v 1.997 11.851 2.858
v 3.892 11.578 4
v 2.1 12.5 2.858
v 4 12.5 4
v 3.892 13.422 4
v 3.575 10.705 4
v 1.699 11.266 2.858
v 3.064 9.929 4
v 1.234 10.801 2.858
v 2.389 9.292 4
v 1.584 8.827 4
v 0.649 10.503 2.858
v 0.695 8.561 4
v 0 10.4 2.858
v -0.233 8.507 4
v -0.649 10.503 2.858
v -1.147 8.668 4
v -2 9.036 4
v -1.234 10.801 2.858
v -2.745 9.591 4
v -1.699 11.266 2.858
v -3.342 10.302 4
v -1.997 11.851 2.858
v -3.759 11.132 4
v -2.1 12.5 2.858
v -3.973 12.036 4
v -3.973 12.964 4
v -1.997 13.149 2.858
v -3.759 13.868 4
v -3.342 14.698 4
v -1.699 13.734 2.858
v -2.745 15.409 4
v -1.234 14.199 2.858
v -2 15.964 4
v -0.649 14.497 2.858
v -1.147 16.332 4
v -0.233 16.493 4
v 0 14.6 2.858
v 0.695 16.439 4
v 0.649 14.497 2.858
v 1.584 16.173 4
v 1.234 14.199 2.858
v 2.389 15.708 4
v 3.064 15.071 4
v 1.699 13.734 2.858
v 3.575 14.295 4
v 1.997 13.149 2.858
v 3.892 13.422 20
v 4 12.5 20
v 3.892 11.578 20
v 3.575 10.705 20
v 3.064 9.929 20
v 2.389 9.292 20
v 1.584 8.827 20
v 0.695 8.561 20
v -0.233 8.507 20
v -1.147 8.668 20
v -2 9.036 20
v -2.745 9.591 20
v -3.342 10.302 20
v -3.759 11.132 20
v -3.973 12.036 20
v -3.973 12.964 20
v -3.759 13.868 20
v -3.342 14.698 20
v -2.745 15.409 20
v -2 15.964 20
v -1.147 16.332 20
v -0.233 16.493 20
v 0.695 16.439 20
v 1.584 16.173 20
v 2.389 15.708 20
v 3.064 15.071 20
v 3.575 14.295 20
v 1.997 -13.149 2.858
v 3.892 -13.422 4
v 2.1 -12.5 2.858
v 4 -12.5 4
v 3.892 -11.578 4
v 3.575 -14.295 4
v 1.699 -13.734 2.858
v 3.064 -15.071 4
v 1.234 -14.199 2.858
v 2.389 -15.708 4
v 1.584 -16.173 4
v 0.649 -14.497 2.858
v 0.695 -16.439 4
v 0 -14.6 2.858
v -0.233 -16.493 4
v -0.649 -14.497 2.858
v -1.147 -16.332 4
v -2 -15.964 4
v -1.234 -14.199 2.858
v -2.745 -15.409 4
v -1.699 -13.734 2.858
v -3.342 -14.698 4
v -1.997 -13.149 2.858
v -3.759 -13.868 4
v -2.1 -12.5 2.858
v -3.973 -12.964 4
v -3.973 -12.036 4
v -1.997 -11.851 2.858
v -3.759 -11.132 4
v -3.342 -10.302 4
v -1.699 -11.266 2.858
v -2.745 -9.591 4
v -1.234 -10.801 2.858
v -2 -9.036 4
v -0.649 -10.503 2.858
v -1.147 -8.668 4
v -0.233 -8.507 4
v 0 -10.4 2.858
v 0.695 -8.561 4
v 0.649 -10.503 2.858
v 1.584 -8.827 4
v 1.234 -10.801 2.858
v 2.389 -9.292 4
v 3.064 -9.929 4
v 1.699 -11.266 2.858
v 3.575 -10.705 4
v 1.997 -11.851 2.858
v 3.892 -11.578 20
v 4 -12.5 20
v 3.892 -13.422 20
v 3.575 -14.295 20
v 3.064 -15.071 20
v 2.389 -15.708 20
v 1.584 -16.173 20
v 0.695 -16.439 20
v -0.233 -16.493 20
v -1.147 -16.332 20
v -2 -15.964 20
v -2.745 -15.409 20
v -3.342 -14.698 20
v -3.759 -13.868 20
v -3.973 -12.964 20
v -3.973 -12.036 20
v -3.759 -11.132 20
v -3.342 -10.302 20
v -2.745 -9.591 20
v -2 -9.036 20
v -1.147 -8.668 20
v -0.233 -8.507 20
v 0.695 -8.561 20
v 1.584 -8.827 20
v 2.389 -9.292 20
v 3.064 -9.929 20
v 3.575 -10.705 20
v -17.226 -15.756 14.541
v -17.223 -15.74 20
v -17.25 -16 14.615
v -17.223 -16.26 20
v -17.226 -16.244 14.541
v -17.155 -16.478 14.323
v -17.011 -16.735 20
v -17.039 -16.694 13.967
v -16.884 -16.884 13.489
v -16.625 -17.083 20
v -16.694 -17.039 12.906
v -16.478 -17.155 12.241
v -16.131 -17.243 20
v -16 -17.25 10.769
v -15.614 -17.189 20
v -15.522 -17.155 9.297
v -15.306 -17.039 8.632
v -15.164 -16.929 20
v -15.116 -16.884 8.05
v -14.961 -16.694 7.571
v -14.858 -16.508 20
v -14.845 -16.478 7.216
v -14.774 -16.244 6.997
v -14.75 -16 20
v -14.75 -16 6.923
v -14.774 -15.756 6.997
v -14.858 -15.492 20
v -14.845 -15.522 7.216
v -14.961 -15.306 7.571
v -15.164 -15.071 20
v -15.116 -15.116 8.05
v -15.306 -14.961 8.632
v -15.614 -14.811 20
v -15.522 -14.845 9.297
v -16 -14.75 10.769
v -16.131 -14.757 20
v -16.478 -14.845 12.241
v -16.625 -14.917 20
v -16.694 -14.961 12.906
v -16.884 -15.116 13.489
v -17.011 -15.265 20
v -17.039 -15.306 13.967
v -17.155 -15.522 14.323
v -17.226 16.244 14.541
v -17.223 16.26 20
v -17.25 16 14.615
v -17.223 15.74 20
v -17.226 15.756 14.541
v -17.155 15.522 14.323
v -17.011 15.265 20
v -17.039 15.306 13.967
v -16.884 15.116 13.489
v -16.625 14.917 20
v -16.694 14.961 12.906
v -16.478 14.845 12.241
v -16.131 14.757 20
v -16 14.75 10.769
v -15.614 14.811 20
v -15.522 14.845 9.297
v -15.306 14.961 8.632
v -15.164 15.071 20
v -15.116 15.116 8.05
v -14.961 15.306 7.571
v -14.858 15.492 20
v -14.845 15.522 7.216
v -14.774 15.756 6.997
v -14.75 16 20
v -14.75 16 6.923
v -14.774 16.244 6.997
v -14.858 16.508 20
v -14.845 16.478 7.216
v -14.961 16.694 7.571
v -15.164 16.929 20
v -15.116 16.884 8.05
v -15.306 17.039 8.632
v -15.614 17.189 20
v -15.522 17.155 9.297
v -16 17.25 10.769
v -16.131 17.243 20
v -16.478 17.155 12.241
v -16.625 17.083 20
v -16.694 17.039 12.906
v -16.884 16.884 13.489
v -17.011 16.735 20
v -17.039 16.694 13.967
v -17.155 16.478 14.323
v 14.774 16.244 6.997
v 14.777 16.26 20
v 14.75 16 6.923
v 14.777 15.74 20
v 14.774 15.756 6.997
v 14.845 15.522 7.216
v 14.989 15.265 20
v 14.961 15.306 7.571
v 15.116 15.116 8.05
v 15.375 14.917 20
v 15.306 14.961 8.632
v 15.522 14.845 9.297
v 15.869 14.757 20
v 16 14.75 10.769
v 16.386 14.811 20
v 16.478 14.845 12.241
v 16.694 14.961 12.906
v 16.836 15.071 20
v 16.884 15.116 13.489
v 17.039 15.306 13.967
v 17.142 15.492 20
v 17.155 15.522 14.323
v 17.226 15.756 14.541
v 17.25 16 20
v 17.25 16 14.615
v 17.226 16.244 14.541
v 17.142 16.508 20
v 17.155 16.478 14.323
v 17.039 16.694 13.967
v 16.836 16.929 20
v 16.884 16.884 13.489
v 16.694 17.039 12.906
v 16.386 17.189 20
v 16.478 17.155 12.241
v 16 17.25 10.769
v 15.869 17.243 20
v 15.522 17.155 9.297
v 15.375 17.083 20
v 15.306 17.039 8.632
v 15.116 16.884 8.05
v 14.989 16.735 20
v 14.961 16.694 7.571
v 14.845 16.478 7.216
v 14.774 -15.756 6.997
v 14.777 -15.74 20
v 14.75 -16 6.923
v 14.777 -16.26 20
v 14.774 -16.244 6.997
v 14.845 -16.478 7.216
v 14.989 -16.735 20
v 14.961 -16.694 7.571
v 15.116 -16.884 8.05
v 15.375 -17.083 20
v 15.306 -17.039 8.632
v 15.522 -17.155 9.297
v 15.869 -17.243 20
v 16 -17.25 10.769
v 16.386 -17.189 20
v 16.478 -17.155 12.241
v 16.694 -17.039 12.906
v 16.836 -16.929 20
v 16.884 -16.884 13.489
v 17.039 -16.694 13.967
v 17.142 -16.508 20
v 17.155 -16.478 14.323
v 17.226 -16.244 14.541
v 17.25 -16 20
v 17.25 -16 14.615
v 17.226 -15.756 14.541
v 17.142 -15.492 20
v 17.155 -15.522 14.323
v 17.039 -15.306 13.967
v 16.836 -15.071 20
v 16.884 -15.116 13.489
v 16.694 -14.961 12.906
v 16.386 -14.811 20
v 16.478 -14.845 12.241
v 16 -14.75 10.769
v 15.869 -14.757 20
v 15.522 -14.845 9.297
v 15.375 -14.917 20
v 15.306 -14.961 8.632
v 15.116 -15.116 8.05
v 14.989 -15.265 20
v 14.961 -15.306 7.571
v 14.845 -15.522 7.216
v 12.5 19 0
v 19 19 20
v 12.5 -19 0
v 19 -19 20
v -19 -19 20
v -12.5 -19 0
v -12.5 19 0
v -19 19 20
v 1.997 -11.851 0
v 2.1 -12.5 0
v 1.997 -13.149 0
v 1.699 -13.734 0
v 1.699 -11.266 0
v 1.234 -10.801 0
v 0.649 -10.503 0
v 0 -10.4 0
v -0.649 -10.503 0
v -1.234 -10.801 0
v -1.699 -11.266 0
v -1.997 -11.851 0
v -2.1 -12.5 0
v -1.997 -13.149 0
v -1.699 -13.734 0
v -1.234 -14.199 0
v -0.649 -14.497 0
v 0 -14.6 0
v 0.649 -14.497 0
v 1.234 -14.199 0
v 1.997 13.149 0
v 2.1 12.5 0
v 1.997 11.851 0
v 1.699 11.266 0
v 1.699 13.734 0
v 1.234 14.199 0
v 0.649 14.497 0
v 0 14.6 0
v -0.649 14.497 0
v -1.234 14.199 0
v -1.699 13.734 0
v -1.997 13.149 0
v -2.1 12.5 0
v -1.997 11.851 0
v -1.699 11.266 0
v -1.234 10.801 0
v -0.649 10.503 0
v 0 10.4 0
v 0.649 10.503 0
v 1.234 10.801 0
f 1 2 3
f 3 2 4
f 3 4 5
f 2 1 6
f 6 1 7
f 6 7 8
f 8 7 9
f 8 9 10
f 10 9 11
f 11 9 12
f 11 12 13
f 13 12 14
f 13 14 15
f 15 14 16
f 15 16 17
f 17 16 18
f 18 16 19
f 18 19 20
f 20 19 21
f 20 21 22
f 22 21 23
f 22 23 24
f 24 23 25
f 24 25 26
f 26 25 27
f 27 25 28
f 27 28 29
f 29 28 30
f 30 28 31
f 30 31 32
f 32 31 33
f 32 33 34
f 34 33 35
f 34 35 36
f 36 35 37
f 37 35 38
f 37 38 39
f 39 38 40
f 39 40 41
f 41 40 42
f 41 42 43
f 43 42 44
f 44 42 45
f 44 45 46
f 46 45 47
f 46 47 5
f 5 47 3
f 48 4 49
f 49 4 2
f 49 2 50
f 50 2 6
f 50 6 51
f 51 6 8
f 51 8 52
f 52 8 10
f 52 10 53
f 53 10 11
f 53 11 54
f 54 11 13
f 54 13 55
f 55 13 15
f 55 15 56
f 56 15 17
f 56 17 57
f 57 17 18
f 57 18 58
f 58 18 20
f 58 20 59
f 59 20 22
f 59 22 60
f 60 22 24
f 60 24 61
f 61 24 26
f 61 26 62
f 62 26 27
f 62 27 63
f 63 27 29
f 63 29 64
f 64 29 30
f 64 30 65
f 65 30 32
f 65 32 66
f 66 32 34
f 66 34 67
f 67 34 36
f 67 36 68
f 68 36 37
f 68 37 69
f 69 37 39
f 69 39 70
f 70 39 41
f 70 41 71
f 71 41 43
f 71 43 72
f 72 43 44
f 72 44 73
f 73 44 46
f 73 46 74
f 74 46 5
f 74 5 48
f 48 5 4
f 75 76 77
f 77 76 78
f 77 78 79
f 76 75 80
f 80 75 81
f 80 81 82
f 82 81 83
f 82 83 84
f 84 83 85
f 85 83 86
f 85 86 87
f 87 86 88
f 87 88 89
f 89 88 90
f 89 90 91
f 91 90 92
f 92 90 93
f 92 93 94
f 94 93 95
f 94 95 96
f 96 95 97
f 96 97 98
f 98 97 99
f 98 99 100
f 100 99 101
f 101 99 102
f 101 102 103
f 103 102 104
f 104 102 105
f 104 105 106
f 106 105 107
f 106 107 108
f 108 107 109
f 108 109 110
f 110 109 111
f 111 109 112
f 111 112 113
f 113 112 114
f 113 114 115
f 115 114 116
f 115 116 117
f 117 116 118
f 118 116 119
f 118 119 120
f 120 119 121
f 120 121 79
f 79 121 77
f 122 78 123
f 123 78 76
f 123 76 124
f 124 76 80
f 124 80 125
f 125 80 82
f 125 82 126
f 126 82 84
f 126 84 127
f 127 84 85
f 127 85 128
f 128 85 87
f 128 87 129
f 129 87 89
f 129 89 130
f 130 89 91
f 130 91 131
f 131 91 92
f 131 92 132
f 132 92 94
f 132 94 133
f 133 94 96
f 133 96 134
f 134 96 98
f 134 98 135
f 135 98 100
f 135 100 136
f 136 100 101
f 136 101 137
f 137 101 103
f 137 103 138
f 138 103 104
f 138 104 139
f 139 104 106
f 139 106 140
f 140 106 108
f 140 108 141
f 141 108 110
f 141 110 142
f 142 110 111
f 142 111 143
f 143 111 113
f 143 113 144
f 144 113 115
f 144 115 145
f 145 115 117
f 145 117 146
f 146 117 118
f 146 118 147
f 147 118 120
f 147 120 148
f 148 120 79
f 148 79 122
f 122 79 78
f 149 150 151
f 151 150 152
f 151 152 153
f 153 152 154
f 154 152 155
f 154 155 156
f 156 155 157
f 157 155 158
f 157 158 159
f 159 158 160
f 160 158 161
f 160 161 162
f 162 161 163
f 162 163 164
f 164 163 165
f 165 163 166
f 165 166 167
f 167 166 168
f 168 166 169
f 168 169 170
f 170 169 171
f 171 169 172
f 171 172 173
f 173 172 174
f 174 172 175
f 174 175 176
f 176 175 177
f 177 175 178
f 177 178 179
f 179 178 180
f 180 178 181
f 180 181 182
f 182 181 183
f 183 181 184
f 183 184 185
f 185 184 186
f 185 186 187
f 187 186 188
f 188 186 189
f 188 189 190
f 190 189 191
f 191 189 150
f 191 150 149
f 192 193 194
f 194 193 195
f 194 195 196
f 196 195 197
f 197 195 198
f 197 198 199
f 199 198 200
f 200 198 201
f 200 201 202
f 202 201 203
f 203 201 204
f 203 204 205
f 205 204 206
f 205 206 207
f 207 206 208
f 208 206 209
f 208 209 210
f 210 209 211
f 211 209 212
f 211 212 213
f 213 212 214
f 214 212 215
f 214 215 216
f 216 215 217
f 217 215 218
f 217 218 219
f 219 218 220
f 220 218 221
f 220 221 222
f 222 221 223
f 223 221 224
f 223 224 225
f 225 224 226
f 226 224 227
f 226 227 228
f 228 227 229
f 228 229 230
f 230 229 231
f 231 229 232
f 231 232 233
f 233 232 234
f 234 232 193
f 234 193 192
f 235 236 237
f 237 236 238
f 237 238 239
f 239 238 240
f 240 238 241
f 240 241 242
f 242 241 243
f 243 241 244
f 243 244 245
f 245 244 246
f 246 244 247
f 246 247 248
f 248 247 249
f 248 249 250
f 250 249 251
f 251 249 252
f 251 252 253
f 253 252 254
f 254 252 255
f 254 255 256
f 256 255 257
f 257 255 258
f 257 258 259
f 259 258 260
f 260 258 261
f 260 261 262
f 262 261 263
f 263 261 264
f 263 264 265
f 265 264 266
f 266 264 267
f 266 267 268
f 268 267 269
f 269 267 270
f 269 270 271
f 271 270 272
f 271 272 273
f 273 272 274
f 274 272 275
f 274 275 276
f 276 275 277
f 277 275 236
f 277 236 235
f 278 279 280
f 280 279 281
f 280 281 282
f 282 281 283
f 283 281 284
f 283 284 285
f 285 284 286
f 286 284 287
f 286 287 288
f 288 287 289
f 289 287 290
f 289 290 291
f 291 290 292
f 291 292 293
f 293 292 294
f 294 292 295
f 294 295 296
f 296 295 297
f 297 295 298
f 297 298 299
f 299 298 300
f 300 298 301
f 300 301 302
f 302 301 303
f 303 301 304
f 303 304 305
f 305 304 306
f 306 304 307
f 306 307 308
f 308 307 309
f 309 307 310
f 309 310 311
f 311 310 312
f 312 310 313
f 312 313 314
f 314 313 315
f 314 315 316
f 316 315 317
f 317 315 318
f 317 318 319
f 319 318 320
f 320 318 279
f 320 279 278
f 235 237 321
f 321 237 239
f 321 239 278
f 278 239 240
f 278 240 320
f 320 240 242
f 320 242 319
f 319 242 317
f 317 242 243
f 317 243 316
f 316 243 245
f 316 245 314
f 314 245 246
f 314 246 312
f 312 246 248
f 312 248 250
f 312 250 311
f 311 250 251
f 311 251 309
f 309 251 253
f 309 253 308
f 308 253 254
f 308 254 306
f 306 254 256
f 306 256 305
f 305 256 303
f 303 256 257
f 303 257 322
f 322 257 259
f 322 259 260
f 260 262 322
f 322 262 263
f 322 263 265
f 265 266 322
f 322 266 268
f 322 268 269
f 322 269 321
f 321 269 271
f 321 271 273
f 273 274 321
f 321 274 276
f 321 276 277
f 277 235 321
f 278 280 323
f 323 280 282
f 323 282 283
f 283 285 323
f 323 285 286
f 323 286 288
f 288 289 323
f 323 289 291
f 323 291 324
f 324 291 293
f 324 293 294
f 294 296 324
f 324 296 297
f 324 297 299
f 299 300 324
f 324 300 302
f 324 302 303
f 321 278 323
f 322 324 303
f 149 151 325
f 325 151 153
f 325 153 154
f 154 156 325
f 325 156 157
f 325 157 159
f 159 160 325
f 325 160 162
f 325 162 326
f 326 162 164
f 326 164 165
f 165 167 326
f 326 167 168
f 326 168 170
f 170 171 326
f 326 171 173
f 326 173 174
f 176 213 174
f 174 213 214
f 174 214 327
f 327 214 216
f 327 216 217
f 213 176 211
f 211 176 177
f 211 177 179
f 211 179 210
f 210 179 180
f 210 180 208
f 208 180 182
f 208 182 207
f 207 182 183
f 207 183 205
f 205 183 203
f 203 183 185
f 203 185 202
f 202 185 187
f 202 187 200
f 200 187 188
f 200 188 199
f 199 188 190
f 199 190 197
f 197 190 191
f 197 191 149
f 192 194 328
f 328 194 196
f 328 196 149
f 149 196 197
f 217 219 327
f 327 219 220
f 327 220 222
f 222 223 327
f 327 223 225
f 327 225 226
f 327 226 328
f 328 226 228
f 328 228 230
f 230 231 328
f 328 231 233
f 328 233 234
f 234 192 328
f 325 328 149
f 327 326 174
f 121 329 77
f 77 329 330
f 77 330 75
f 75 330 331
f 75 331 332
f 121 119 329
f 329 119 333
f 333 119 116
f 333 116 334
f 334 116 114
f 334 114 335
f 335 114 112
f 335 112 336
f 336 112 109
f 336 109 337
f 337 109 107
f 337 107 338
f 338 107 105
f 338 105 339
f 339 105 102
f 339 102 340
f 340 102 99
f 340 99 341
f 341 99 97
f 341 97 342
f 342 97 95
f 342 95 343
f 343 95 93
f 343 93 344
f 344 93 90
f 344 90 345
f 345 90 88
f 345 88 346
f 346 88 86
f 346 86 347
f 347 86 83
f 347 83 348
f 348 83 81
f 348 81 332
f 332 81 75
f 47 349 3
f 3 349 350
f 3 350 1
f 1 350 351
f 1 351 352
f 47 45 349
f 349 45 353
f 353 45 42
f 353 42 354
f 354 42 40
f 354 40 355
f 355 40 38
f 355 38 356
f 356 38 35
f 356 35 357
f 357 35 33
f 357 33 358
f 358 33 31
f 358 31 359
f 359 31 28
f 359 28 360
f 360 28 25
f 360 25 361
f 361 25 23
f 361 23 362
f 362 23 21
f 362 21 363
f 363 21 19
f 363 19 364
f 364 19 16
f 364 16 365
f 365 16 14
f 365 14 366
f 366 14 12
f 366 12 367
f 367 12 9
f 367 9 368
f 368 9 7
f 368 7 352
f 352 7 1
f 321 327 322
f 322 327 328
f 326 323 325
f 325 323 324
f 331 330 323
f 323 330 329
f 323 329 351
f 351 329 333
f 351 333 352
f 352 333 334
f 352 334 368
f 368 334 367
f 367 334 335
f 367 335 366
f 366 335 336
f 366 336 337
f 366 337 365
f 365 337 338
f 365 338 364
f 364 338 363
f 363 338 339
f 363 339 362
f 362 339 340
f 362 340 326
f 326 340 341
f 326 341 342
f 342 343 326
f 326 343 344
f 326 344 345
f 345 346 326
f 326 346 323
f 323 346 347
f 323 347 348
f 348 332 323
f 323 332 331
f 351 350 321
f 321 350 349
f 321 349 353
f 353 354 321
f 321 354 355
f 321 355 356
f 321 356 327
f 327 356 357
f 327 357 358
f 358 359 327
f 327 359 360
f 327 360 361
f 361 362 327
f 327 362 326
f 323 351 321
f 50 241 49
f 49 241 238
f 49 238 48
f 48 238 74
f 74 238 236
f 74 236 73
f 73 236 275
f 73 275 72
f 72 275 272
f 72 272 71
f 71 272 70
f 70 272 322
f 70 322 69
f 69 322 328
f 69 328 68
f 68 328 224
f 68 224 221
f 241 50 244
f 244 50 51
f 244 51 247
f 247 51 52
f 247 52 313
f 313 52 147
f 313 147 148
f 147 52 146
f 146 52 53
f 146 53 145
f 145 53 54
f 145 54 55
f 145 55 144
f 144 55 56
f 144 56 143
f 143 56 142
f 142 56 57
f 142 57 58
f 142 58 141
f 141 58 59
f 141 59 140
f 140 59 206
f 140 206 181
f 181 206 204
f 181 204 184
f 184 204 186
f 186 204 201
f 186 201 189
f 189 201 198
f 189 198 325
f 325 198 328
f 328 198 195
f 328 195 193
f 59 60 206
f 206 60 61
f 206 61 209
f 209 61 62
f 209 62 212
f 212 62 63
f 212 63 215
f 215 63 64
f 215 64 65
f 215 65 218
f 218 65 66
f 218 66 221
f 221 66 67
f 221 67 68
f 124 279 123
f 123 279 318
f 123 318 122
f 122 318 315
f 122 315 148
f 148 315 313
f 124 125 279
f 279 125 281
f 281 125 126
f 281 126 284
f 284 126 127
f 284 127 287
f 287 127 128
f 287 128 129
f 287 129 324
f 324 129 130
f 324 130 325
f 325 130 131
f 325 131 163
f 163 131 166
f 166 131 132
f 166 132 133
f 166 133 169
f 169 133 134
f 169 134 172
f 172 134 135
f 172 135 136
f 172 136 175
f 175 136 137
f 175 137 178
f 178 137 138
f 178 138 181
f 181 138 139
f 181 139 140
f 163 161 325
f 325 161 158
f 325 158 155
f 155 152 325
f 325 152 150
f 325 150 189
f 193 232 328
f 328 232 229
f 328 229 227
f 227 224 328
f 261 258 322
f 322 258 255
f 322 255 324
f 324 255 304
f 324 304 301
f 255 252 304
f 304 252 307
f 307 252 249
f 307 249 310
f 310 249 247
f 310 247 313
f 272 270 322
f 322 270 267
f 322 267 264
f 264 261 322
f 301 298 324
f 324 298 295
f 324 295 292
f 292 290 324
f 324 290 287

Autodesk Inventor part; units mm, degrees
ref_plane "YZ Plane" through (0, 0, 0) normal (1, 0, 0) x (0, 1, 0)
ref_plane "XZ Plane" through (0, 0, 0) normal (0, 1, 0) x (-1, 0, 0)
ref_plane "XY Plane" through (0, 0, 0) normal (0, 0, 1) x (1, 0, 0)
sketch "Sketch1" plane through (0, 0, 0) normal (0, 0, 1) x (1, 0, 0)
  line L0 (12.5, -19) -> (-12.5, -19)
  line L1 (-12.5, -19) -> (-12.5, 19)
  line L2 (-12.5, 19) -> (12.5, 19)
  line L3 (12.5, 19) -> (12.5, -19)
  line L4 (12.5, -19) -> (-12.5, 19) construction
  line L5 (-12.5, -19) -> (12.5, 19) construction
  circle A0 centre (0, 12.5) radius 2.1
  circle A1 centre (0, -12.5) radius 2.1
  point P0 (0, 0)
  dimension "d0" = 25
  dimension "d1" = 38
  dimension "d2" = 4.2
  dimension "d3" = 4.2
  dimension "d4" = 12.5
  dimension "d5" = 12.5
extrude "Extrusion1" add sketch "Sketch1" along normal blind 20
sketch "Sketch2" plane through (-12.5, 19, 0) normal (0, 1, 0) x (1, 0, 0)
  line L0 (0, 0) -> (0, -20) projected
  line L1 (0, -20) -> (-6.5, -20)
  line L2 (-6.5, -20) -> (0, 0)
  line L3 (0, -20) -> (25, -20) projected
  line L4 (0, 0) -> (0, -20)
  line L5 (25, -20) -> (31.5, -20)
  line L6 (25, 0) -> (25, -20) projected
  line L7 (31.5, -20) -> (25, 0)
  line L8 (25, 0) -> (25, -20)
  point P0 (12.5, 0)
  dimension "d8" = 6.5
  dimension "d9" = 6.5
extrude "Extrusion2" add sketch "Sketch2" against normal up to surface (38 mm away)
sketch "Sketch3" plane through (0, 0, 20) normal (0, 0, 1) x (1, 0, 0)
  line L0 (-5.4088, 0) -> (7.7062, 0)
  line L1 (0, 5.8117) -> (0, -6.6687)
  point P0 (0, 0)
  point P1 (-16, 16)
  point P2 (16, 16)
  point P3 (-16, -16)
  point P4 (16, -16)
  dimension "d12" = 16
  dimension "d13" = 16
  dimension "d16" = 32
  dimension "d19" = 32
hole "Hole1" at (-16, 16, 20) at (16, 16, 20) at (-16, -16, 20) at (16, -16, 20) direction (0, 0, -1) diameter 2.5 end through all
hole "Hole2" at (0, -12.5, 20) direction (0, 0, -1) diameter 8 depth 16 tip angle 118
hole "Hole3" at (0, 12.5, 20) direction (0, 0, -1) diameter 8 depth 16 tip angle 118
properties part number "RDtoRC2-height20mm"
